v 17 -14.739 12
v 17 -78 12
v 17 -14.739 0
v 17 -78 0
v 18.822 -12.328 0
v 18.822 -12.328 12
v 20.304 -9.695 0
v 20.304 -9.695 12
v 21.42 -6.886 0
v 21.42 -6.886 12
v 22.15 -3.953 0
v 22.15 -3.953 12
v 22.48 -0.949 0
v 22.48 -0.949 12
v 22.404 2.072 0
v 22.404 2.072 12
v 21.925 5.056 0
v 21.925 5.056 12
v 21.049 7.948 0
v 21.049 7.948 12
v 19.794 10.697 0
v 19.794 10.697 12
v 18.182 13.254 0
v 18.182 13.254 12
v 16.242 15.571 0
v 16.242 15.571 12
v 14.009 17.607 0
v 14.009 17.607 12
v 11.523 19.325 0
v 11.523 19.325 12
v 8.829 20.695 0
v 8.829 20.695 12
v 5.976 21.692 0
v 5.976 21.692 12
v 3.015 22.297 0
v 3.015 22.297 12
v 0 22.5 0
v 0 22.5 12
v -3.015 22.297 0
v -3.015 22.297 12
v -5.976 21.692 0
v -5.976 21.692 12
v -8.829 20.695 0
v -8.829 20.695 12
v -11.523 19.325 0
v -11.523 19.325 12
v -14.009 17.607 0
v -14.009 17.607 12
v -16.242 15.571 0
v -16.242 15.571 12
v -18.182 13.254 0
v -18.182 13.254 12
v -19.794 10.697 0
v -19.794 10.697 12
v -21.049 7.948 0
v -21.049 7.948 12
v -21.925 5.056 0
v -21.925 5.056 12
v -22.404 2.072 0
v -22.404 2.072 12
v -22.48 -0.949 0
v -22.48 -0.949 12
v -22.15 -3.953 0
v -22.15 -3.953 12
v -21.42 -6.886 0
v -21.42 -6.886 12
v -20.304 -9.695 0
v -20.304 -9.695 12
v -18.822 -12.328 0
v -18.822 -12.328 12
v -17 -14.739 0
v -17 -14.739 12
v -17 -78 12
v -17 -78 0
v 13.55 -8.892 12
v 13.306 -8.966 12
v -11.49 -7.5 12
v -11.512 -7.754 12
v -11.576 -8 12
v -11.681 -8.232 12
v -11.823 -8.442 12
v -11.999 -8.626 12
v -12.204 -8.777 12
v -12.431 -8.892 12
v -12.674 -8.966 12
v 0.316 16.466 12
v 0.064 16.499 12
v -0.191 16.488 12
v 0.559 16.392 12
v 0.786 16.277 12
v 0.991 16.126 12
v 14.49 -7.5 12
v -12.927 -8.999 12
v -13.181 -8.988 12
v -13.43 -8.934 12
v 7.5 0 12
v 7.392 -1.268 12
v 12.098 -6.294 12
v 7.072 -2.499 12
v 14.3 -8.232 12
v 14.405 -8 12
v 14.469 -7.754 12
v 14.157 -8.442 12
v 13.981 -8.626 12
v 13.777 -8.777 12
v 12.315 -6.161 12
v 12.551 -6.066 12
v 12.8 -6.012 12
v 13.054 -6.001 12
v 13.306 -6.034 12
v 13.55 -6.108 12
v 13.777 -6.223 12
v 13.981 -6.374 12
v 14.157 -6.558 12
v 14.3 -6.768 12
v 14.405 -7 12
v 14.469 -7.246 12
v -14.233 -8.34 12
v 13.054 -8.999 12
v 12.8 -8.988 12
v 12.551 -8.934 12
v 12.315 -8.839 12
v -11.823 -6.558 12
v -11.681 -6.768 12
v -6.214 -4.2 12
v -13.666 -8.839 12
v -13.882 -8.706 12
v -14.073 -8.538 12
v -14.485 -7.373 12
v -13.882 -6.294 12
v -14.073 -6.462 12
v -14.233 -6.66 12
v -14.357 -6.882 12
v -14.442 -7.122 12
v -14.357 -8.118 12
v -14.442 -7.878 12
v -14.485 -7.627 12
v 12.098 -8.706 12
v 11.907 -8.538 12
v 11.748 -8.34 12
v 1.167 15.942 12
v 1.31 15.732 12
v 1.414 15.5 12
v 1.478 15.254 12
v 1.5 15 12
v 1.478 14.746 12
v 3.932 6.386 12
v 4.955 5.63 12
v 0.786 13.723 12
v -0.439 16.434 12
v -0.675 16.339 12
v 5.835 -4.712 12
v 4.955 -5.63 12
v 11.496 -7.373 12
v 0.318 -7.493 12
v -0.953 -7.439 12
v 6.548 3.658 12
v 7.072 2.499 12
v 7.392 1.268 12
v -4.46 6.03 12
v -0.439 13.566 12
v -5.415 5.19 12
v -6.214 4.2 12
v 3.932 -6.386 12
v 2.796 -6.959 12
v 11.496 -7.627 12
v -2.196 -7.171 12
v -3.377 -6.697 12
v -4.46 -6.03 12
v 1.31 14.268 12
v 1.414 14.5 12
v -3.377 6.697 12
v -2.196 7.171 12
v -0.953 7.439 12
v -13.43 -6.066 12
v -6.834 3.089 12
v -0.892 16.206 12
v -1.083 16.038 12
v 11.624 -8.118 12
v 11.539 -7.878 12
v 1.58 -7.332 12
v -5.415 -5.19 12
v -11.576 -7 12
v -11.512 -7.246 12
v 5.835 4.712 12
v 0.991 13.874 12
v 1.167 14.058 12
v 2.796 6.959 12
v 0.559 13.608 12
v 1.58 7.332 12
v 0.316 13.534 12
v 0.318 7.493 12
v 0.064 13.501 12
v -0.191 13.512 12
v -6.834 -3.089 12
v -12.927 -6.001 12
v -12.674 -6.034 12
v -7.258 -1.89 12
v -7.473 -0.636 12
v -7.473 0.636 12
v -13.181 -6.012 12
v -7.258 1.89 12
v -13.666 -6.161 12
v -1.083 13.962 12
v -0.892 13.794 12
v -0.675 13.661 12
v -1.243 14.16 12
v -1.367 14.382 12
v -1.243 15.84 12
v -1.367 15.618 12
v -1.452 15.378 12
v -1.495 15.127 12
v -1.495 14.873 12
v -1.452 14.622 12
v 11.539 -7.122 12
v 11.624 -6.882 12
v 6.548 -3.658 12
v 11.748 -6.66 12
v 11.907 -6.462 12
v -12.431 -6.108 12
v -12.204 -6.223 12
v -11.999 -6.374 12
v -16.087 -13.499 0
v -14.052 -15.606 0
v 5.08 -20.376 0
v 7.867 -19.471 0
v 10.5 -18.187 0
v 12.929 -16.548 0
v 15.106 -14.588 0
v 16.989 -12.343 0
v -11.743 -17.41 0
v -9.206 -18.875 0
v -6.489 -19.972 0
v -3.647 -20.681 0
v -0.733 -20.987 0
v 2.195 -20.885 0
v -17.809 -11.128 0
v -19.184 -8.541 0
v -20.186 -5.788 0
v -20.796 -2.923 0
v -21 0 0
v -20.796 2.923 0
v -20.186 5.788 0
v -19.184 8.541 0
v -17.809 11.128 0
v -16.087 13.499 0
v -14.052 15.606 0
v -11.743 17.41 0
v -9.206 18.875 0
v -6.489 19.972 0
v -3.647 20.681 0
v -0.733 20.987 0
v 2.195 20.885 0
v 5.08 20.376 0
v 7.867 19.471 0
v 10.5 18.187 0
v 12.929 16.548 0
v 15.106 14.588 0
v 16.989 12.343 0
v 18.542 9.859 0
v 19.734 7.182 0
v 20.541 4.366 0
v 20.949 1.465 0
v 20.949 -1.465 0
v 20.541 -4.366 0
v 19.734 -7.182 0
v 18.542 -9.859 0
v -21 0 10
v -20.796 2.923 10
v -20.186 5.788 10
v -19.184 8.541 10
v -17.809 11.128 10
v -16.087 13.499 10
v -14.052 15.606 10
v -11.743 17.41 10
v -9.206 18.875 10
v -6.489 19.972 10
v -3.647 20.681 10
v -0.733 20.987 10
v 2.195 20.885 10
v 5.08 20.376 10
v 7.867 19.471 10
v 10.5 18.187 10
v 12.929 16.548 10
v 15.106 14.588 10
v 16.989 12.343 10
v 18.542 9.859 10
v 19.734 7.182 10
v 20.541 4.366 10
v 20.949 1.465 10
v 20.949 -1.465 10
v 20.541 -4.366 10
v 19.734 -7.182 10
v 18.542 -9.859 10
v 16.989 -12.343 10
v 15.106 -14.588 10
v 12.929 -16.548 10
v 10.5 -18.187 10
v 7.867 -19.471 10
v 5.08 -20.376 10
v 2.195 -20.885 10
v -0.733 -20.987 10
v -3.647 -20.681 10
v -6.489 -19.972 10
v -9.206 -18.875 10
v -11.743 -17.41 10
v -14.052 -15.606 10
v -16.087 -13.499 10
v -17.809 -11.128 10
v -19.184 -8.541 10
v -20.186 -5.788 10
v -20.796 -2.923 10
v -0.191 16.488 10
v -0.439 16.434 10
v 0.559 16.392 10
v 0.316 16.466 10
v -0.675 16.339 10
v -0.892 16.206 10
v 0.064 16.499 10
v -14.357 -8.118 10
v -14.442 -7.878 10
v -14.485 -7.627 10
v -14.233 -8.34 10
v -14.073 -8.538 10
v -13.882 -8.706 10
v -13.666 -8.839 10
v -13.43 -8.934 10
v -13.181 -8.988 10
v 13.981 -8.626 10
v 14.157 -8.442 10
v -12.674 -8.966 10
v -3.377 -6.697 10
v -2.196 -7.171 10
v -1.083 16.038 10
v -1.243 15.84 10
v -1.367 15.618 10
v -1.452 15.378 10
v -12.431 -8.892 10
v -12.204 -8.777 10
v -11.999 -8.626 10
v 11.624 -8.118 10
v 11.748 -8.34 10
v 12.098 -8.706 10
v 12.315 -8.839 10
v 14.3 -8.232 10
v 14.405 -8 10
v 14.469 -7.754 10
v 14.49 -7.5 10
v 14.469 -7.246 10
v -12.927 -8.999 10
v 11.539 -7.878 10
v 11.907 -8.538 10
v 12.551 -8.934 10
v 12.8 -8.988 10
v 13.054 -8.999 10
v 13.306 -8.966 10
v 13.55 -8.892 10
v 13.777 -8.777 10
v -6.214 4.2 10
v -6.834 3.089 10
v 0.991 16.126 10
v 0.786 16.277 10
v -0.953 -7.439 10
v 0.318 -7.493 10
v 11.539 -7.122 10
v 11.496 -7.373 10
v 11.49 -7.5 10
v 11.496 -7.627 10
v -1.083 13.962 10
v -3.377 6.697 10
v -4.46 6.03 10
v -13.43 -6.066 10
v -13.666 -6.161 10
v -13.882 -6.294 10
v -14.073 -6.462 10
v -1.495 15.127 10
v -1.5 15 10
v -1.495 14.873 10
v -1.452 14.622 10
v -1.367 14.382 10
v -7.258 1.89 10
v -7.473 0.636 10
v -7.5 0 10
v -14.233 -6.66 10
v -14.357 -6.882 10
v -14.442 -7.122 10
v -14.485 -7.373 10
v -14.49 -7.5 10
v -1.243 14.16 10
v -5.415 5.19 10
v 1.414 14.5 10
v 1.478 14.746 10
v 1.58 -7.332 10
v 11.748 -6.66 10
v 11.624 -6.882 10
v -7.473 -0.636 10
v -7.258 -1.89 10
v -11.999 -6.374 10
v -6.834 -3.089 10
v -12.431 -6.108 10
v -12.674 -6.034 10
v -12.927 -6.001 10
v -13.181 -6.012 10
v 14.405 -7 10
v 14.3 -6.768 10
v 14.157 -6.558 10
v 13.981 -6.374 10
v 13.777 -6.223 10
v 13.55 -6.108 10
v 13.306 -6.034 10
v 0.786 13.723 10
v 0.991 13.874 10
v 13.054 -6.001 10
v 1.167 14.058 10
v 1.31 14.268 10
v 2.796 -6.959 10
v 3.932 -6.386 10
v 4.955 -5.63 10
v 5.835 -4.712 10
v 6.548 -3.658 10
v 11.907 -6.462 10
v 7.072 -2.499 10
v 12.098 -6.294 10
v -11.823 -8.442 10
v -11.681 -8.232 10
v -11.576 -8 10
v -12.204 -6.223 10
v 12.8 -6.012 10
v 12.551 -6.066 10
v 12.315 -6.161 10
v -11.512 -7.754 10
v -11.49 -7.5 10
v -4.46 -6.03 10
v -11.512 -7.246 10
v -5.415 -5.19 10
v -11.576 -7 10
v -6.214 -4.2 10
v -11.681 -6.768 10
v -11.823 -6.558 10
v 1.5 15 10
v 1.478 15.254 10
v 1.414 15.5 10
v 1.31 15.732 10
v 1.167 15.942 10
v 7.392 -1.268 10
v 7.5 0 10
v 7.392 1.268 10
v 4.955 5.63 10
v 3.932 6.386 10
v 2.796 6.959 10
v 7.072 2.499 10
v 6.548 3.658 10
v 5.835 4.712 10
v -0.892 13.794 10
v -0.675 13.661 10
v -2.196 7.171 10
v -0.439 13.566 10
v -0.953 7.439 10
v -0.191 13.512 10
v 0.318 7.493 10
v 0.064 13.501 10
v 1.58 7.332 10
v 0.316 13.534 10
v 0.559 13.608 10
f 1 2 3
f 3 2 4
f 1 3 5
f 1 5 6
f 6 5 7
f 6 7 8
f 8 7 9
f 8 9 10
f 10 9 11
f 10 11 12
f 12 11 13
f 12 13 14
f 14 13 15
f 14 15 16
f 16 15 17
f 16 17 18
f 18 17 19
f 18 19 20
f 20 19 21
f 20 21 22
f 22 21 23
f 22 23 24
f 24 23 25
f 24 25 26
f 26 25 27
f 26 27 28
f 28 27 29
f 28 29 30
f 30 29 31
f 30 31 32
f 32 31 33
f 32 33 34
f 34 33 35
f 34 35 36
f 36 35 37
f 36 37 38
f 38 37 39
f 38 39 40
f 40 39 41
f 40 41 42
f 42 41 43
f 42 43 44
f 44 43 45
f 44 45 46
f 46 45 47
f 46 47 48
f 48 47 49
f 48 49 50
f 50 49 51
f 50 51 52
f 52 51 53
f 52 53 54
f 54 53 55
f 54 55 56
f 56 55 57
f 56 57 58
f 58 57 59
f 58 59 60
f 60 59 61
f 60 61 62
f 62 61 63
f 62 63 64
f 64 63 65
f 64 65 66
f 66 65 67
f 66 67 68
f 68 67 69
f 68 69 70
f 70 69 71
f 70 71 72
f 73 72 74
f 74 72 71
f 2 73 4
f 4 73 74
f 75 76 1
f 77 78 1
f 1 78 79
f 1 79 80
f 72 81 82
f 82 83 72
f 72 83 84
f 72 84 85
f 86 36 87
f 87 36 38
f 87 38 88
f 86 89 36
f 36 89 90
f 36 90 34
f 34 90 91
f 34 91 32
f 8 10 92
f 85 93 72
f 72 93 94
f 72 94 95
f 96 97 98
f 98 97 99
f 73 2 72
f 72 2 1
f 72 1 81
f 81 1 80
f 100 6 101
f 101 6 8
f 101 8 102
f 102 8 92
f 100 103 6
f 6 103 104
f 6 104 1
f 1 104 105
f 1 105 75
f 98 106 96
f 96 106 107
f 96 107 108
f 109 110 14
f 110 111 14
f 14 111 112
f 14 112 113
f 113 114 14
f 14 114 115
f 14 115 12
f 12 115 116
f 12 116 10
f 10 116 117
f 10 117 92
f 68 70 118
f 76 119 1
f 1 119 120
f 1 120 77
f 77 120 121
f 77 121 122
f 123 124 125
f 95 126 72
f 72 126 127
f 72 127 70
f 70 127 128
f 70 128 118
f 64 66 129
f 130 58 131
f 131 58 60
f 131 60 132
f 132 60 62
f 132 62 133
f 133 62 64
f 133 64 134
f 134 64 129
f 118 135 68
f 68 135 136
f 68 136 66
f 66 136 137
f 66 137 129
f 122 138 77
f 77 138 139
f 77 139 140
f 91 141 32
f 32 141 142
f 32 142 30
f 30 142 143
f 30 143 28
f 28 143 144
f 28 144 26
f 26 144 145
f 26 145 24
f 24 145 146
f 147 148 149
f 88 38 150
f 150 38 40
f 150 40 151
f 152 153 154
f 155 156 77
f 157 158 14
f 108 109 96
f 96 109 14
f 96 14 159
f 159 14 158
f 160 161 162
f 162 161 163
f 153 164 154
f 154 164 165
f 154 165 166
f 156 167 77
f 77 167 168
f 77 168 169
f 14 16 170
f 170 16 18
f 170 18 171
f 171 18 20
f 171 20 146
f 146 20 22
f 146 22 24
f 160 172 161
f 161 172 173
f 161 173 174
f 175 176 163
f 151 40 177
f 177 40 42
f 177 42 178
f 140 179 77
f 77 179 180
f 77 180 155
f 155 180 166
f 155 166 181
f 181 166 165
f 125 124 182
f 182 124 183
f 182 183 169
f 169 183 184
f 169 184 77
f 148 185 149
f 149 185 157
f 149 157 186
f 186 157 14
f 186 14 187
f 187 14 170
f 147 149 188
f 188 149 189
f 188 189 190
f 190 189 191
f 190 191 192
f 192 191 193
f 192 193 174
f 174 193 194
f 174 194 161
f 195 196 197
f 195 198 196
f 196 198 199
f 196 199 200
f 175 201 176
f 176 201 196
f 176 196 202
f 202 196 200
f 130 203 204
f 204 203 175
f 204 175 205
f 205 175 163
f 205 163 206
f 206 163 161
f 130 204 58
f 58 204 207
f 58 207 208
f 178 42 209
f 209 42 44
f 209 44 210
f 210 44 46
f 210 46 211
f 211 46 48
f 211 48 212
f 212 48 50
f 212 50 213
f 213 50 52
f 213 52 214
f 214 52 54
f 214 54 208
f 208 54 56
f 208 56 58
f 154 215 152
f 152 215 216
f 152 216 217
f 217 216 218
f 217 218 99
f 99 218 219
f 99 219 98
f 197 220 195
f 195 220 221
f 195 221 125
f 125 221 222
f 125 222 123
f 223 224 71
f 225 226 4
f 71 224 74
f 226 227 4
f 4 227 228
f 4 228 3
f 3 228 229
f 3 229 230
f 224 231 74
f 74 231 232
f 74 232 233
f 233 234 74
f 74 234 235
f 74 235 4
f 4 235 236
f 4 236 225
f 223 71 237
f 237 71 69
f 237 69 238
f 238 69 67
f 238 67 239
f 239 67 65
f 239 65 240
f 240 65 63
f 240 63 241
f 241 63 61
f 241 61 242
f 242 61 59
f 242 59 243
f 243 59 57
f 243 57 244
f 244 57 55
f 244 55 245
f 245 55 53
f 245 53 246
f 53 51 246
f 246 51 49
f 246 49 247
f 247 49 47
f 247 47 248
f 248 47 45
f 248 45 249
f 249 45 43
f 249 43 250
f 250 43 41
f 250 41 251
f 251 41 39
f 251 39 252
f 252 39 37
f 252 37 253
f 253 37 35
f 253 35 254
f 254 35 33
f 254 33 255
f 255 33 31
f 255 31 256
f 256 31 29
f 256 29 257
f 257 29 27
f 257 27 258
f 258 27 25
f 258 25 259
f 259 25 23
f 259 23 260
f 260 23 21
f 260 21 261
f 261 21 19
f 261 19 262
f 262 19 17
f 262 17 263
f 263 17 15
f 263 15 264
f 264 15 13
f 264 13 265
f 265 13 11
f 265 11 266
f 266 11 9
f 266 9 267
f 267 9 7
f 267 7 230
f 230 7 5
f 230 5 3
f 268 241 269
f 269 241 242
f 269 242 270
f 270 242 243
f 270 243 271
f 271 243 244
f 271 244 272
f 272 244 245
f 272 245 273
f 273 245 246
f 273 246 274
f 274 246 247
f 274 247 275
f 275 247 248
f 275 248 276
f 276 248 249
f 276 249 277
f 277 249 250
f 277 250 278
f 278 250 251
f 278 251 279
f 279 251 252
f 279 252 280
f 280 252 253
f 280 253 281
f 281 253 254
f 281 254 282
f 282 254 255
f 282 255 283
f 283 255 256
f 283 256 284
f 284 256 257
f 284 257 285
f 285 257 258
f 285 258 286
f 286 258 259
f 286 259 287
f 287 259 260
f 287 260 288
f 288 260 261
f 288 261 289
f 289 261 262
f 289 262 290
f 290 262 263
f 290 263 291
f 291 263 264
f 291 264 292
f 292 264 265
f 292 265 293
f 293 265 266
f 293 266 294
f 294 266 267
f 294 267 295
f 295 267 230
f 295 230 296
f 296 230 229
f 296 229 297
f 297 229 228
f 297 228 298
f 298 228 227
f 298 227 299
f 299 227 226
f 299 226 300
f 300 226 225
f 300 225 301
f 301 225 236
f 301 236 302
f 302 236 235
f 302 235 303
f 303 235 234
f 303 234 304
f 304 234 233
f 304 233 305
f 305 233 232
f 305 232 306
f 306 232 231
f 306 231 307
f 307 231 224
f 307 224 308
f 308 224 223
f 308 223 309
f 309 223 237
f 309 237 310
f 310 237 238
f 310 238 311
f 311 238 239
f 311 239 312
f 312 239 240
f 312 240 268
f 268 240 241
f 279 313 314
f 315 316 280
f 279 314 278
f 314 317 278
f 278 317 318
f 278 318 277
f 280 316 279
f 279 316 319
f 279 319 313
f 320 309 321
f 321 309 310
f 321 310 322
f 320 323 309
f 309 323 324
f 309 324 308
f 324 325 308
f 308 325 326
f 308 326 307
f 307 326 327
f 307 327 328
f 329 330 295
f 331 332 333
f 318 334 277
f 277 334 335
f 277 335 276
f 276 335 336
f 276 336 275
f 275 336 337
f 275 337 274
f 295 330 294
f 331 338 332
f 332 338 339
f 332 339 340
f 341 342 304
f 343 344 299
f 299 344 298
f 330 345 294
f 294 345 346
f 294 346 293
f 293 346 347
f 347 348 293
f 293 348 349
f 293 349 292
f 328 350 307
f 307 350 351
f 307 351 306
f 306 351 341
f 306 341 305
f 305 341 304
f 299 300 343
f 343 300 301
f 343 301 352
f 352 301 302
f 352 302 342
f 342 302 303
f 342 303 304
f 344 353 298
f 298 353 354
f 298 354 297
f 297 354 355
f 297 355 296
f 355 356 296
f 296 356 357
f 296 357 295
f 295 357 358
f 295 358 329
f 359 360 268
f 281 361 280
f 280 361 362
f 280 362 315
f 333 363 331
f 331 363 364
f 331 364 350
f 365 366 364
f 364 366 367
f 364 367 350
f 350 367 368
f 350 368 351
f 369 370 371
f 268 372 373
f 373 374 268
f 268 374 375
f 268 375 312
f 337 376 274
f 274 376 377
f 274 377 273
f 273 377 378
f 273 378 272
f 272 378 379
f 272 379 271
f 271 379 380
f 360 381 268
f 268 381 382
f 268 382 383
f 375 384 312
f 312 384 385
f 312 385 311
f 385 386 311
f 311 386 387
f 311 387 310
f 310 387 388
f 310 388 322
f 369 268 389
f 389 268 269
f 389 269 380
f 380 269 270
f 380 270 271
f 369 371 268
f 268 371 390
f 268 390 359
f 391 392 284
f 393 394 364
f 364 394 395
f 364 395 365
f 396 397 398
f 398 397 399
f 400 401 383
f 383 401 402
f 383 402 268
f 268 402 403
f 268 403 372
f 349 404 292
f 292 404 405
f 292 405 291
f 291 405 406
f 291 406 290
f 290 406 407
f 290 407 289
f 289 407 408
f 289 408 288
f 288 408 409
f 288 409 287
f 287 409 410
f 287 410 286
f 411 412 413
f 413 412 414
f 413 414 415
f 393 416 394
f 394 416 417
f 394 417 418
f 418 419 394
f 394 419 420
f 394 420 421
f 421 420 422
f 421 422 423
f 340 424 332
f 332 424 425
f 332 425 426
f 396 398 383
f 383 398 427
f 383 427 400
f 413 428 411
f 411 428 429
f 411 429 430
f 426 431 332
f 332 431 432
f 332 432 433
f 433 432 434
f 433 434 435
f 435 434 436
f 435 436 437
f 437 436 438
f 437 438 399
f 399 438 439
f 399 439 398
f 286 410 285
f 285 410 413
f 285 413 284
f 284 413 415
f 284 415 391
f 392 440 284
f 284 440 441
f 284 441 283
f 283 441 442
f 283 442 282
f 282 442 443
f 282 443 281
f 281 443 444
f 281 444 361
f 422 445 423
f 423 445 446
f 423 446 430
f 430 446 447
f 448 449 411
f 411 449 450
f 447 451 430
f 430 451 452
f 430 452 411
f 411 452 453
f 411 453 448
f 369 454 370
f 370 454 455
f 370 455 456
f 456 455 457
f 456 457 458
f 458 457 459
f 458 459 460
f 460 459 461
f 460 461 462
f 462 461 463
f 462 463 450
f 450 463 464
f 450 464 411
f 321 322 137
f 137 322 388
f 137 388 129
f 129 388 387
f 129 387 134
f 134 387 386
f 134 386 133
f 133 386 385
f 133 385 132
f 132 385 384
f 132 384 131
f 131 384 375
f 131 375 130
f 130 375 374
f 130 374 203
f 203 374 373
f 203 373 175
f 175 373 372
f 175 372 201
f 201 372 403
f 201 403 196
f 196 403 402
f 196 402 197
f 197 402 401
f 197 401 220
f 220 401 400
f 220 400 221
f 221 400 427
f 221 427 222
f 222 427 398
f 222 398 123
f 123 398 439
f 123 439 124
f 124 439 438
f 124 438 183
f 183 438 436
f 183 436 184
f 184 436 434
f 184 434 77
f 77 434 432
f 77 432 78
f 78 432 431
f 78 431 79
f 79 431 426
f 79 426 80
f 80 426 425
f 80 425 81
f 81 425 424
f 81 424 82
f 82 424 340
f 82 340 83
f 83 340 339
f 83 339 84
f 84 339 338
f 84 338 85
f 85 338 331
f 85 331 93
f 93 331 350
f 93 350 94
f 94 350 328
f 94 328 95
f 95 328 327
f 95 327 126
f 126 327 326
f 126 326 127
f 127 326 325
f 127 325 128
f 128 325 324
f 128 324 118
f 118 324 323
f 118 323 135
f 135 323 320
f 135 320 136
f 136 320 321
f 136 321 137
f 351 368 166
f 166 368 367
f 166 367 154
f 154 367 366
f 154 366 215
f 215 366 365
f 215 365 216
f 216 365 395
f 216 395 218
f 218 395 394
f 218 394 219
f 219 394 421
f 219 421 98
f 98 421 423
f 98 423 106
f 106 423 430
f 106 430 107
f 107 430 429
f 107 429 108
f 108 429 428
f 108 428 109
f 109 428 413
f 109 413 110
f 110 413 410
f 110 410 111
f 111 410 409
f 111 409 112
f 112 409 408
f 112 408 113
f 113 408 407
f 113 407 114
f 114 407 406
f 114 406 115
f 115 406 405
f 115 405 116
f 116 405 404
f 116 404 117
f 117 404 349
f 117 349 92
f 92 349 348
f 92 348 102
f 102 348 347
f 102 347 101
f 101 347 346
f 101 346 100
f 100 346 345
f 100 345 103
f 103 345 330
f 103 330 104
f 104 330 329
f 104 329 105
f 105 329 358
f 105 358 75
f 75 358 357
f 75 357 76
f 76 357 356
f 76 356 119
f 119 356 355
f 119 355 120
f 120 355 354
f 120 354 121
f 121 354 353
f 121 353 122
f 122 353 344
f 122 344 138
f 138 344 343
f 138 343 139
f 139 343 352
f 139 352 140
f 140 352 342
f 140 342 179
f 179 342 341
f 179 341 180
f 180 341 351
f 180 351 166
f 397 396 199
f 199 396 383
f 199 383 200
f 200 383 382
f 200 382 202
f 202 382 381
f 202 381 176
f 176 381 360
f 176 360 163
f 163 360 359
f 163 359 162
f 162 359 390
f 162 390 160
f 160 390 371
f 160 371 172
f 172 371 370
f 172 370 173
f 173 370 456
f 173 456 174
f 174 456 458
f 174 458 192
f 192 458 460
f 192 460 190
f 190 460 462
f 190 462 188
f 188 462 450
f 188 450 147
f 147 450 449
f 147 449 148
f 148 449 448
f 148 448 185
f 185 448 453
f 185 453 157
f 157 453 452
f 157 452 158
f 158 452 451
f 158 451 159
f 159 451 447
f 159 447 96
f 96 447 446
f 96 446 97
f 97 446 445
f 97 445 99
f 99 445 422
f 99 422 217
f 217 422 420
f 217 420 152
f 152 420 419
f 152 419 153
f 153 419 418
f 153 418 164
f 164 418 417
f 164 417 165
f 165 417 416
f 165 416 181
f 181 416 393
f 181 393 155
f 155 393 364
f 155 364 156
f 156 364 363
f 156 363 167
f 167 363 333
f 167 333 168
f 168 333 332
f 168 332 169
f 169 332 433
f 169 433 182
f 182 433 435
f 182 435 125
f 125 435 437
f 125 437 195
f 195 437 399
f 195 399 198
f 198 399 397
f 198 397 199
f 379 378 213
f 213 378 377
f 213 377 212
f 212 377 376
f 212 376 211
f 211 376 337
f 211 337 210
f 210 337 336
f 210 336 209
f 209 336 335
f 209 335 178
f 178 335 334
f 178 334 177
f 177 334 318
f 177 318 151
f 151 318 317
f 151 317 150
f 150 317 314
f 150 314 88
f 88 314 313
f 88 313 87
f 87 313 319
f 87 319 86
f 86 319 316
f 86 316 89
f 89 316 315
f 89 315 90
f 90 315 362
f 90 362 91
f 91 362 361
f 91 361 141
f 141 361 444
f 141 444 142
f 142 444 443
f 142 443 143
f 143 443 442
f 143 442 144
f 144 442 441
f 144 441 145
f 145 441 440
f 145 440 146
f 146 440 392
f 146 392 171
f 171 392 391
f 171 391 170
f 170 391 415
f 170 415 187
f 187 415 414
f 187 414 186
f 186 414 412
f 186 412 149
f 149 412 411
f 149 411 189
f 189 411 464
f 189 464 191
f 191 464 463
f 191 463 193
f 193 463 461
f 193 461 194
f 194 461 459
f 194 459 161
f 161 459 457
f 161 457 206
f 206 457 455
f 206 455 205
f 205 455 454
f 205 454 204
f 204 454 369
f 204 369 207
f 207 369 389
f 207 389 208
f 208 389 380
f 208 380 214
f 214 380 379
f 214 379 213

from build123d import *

# Parameters (mm, degrees)
SKETCH1_R           = 22.5
BOSS_EXTRUDE1_DEPTH = 12
SKETCH2_R           = 21
CUT_EXTRUDE1_DEPTH  = 10
SKETCH3_R           = 1.5
SKETCH3_R_2         = 7.5
CUT_EXTRUDE2_DEPTH  = 83.0624762


with BuildPart() as part:
    # Sketch1 → Boss-Extrude1 (new body)
    with BuildSketch(Plane.XY):
        Circle(SKETCH1_R)
        with BuildLine():
            Line((-17, -14.739402973), (-17, -78))
            Line((-17, -78), (17, -78))
            Line((17, -78), (17, -14.739402973))
            ThreePointArc((17, -14.739402973), (0, -22.5), (-17, -14.739402973))
        make_face()
    extrude(amount=BOSS_EXTRUDE1_DEPTH)

    # Sketch2 → Cut-Extrude1 (cut)
    with BuildSketch(Plane(origin=(0, 0, 0), x_dir=(-1, 0, 0), z_dir=(0, 0, -1))):
        Circle(SKETCH2_R)
    extrude(amount=-CUT_EXTRUDE1_DEPTH, mode=Mode.SUBTRACT)

    # Sketch3 → Cut-Extrude2 (cut, through all)
    with BuildSketch(Plane.XY.offset(12)):
        with Locations((0, 15)):
            Circle(SKETCH3_R)
        with Locations((12.990381057, -7.5)):
            Circle(SKETCH3_R)
        with Locations((-12.990381057, -7.5)):
            Circle(SKETCH3_R)
        Circle(SKETCH3_R_2)
    extrude(amount=-CUT_EXTRUDE2_DEPTH, mode=Mode.SUBTRACT)


solid = part.part
